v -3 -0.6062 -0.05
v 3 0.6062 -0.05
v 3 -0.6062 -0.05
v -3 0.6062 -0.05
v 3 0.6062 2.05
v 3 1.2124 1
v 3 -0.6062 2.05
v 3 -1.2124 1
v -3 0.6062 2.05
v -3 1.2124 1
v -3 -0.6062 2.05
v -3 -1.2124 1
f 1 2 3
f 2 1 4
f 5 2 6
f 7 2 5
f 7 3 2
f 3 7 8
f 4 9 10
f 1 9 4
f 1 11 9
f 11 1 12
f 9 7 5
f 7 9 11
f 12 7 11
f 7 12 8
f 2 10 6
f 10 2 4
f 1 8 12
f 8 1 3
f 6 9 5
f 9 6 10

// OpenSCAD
//============================================================
// OpenSCAD
// Licence : LICENCE PUBLIQUE RIEN À BRANLER
// Licence : do What The Fuck you want to Public License
//============================================================
/*

	Usage:
	use <Hexagones.scad>;
	Pour créer des jeux, des têtes de vis...

*/


//------------------------------------------------------------
// Demo
//------------------------------------------------------------
$fn = 150 ;			// OpenSCAD Resolution
// hexagone de 1 pouce (1 inch) soit 25.4 mm
Hexagone(cle=2.1,h=6);

//------------------------------------------------------------
// Hexagone
// cle	écart, ex: clé de 12 alors cle=12
// h		hauteur
//------------------------------------------------------------
module Hexagone(cle,h)
{
	angle = 360/6;		// 6 pans
	cote = cle * cot(angle);
	echo(angle, cot(angle), cote);
	echo(acos(.6));

    translate([0,0,1]) {
        rotate([0,90,0]) {
            union()
            {
                rotate([0,0,0])
                    cube([cle,cote,h],center=true);
                rotate([0,0,angle])
                    cube([cle,cote,h],center=true);
                rotate([0,0,2*angle])
                    cube([cle,cote,h],center=true);
            }
        }
    }

// Vérification par un cercle de taille cle
//	#cylinder(r=cle/2,h=2*h,center=true);
//	%circle(r=cote,center=true);
//	#cube([cote,cote,1]);
}

//------------------------------------------------------------
// Fonction cotangente
// Permet d'avoir les bones dimensions
// utiliser $fn n'est pas bon
//------------------------------------------------------------
function cot(x)=1/tan(x);

//==EOF=======================================================
